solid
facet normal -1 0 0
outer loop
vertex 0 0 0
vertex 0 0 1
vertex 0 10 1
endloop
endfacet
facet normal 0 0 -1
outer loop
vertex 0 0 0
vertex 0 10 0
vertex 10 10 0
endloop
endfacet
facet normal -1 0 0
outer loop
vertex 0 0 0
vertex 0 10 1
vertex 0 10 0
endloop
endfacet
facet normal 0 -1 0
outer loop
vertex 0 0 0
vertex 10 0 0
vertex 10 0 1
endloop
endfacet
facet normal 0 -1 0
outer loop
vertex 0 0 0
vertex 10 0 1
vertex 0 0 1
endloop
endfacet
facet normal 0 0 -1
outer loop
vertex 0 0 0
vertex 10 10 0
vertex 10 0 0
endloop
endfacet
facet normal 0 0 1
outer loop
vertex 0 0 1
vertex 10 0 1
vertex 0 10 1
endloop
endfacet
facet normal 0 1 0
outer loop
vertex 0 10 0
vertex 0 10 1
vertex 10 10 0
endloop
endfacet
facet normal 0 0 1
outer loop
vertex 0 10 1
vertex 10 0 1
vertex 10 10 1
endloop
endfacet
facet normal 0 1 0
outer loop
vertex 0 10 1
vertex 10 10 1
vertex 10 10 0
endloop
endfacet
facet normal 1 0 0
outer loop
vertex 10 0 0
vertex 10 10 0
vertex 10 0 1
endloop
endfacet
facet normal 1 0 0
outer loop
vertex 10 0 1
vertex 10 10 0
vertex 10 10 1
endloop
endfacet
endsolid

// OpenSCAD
/* Warning, this is a very basic generator with a lot of approximation 
input data : [TQFP, VKX, 10x10x1.0mm, 64, , B, C04-00222B]
generated by com.zoubworld.electronics.cad.model3d.Basic
Date : Sun Feb 15 10:50:48 CET 2026
*/

//body
color("black")
translate([0,0,0])
cube([10.0,10.0,1.0], center=false);
